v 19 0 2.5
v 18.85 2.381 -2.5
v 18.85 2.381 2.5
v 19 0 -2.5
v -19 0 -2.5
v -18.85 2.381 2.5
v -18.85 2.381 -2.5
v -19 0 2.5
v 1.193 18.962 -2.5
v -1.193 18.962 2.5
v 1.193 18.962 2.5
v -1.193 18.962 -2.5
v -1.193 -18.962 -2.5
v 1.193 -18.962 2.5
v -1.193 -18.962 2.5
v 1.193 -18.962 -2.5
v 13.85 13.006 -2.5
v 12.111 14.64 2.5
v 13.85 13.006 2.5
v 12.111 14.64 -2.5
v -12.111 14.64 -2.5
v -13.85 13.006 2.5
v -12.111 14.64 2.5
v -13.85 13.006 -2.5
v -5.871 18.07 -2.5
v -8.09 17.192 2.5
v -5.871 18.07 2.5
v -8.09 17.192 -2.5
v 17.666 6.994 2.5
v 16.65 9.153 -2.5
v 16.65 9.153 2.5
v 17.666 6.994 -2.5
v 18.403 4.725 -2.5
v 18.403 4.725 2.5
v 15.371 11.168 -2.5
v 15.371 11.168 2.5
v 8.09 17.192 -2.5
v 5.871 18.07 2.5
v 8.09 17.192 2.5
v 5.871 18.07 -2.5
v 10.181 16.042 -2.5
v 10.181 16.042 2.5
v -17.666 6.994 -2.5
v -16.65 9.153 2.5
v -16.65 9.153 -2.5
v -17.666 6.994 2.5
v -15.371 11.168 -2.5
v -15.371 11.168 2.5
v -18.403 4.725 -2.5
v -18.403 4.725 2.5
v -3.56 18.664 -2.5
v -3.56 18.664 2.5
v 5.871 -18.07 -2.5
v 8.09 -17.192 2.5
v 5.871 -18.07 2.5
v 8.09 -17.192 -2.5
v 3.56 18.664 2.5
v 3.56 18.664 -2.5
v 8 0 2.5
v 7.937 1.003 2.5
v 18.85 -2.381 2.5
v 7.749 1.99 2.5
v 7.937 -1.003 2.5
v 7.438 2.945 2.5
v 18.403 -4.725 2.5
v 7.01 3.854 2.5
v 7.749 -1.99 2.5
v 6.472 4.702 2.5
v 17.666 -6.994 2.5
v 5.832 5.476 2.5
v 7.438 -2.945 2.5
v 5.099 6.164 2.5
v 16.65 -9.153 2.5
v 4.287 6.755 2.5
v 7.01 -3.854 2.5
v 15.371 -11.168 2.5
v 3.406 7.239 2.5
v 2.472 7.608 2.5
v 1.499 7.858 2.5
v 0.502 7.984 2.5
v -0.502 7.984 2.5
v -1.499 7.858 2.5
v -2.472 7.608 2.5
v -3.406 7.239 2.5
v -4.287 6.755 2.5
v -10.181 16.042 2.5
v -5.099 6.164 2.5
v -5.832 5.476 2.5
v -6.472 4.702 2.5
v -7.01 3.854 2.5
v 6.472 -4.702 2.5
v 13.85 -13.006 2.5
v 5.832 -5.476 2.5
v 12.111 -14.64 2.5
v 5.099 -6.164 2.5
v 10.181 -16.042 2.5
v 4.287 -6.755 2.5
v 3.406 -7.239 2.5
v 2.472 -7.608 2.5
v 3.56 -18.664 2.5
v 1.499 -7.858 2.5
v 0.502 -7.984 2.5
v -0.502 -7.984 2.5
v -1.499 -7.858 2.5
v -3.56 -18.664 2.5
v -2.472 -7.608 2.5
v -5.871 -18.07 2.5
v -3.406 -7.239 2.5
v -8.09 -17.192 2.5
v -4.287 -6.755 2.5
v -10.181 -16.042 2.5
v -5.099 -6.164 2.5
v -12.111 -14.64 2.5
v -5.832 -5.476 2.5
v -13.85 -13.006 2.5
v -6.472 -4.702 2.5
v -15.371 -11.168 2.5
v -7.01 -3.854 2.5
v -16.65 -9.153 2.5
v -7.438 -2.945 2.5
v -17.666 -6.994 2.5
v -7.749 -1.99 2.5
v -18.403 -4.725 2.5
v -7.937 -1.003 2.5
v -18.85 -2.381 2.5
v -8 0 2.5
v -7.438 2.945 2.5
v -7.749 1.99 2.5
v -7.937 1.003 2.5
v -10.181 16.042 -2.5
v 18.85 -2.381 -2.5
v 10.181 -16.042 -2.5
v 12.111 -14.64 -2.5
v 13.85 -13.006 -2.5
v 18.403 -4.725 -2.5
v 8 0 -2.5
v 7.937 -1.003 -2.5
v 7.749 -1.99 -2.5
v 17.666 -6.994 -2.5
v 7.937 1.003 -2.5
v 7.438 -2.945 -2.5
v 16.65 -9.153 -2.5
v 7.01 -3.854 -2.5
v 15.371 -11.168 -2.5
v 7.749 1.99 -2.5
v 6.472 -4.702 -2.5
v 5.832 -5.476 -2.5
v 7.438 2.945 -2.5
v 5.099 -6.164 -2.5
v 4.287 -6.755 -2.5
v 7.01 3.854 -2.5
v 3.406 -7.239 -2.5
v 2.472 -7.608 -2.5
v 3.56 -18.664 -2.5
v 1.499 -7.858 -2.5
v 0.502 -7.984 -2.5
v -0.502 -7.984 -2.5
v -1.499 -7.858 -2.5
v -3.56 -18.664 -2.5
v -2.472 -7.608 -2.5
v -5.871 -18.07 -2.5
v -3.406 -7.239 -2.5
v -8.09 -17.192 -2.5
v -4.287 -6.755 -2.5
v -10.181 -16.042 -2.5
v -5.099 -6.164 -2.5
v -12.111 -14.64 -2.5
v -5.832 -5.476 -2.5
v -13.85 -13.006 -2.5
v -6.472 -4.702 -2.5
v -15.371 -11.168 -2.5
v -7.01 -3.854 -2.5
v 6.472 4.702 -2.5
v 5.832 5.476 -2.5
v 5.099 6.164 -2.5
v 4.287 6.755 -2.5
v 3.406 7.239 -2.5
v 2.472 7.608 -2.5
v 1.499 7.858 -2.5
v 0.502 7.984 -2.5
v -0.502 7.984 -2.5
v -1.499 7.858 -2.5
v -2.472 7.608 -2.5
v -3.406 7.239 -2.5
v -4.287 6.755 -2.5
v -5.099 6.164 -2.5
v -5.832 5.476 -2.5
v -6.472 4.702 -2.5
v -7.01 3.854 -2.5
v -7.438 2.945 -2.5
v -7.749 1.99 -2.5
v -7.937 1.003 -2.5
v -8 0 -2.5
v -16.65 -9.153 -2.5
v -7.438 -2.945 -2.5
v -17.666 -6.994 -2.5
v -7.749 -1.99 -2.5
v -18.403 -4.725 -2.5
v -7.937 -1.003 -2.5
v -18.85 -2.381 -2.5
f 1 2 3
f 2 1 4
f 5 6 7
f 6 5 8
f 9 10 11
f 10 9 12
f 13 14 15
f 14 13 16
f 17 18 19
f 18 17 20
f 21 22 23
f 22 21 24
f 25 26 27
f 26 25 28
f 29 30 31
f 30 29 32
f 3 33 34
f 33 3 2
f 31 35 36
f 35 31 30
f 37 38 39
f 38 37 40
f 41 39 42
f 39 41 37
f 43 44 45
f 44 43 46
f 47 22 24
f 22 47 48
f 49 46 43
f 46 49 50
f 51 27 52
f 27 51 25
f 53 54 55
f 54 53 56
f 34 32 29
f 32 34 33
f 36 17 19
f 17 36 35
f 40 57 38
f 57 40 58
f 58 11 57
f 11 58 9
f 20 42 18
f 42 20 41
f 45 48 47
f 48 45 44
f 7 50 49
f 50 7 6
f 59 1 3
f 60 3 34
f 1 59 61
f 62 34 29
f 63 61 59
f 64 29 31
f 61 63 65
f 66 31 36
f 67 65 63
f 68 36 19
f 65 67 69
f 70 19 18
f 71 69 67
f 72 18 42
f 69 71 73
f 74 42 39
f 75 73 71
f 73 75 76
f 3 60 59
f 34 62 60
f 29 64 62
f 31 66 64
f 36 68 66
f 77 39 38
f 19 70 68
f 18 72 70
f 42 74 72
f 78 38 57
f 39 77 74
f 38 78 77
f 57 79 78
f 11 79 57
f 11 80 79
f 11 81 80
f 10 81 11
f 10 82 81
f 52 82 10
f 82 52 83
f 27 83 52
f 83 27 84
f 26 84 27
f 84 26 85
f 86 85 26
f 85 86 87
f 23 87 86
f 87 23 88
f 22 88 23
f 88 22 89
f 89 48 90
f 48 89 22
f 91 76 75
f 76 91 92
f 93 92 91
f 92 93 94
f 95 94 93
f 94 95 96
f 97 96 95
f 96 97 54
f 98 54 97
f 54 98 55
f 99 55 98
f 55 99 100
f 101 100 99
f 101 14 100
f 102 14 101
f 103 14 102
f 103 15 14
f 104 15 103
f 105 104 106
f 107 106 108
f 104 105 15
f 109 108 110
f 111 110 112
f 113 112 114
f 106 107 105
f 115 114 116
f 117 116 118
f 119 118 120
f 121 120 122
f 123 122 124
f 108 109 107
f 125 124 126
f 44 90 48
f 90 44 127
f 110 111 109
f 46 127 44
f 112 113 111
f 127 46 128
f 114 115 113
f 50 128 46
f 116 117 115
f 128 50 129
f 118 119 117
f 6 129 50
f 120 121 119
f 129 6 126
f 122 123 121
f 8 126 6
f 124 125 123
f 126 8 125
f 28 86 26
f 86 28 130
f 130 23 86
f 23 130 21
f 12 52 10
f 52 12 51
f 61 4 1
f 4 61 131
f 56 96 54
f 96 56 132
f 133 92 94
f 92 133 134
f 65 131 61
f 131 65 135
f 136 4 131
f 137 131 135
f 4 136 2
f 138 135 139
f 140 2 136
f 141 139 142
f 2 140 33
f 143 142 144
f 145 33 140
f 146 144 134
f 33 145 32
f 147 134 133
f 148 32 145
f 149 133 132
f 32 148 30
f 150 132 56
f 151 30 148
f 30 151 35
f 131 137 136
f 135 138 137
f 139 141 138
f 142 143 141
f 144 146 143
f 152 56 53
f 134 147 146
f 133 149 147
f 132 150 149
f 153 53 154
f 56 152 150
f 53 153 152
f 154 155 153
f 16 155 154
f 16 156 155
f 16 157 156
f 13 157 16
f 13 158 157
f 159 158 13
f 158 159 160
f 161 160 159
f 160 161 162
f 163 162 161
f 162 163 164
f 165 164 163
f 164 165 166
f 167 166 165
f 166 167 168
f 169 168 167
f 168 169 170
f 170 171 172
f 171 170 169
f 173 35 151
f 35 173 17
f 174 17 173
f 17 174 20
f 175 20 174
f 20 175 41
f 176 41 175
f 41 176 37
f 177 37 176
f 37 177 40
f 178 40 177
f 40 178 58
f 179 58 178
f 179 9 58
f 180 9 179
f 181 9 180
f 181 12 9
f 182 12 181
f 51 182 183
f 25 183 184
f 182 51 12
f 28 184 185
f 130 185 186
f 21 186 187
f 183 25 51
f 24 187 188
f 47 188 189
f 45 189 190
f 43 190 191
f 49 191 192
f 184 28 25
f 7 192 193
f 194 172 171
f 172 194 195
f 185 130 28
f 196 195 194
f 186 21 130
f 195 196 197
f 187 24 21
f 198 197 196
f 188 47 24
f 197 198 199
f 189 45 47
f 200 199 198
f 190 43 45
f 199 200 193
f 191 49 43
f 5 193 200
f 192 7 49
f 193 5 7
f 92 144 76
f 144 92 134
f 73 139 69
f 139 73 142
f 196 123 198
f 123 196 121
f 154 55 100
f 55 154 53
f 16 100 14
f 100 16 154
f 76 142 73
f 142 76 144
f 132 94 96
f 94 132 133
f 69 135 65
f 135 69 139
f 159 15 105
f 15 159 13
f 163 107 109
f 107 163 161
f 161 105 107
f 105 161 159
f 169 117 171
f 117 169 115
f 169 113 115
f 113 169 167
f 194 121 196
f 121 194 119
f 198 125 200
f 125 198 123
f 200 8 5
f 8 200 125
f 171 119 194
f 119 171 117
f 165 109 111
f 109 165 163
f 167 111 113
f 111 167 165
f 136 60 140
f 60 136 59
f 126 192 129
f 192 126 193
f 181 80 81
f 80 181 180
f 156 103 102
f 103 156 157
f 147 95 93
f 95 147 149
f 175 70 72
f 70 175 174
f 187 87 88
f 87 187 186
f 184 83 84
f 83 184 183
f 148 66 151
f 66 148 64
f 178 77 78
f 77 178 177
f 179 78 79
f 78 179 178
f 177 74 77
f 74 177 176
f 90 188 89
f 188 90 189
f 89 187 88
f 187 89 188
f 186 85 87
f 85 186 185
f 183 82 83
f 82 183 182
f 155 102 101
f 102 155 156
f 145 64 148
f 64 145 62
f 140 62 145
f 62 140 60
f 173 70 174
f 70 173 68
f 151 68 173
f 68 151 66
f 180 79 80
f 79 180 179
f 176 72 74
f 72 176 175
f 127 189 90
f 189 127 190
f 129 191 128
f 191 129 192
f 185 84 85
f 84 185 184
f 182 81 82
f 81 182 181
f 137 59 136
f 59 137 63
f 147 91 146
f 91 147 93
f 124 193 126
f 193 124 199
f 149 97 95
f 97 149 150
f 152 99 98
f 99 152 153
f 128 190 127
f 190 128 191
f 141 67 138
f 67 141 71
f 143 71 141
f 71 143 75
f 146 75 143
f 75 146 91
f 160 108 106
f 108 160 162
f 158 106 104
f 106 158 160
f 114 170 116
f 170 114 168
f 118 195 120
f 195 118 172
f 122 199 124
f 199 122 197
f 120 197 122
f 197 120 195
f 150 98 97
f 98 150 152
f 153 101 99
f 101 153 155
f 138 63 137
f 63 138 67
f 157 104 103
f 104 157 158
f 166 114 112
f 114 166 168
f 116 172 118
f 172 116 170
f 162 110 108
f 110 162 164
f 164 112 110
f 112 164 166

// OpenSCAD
$fn = 50;


difference() {
	union() {
		translate(v = [0, 0, -2.5000000000]) {
			cylinder(h = 5, r = 19.0000000000);
		}
	}
	union() {
		translate(v = [0, 0, -100.0000000000]) {
			cylinder(h = 200, r = 8);
		}
	}
}
